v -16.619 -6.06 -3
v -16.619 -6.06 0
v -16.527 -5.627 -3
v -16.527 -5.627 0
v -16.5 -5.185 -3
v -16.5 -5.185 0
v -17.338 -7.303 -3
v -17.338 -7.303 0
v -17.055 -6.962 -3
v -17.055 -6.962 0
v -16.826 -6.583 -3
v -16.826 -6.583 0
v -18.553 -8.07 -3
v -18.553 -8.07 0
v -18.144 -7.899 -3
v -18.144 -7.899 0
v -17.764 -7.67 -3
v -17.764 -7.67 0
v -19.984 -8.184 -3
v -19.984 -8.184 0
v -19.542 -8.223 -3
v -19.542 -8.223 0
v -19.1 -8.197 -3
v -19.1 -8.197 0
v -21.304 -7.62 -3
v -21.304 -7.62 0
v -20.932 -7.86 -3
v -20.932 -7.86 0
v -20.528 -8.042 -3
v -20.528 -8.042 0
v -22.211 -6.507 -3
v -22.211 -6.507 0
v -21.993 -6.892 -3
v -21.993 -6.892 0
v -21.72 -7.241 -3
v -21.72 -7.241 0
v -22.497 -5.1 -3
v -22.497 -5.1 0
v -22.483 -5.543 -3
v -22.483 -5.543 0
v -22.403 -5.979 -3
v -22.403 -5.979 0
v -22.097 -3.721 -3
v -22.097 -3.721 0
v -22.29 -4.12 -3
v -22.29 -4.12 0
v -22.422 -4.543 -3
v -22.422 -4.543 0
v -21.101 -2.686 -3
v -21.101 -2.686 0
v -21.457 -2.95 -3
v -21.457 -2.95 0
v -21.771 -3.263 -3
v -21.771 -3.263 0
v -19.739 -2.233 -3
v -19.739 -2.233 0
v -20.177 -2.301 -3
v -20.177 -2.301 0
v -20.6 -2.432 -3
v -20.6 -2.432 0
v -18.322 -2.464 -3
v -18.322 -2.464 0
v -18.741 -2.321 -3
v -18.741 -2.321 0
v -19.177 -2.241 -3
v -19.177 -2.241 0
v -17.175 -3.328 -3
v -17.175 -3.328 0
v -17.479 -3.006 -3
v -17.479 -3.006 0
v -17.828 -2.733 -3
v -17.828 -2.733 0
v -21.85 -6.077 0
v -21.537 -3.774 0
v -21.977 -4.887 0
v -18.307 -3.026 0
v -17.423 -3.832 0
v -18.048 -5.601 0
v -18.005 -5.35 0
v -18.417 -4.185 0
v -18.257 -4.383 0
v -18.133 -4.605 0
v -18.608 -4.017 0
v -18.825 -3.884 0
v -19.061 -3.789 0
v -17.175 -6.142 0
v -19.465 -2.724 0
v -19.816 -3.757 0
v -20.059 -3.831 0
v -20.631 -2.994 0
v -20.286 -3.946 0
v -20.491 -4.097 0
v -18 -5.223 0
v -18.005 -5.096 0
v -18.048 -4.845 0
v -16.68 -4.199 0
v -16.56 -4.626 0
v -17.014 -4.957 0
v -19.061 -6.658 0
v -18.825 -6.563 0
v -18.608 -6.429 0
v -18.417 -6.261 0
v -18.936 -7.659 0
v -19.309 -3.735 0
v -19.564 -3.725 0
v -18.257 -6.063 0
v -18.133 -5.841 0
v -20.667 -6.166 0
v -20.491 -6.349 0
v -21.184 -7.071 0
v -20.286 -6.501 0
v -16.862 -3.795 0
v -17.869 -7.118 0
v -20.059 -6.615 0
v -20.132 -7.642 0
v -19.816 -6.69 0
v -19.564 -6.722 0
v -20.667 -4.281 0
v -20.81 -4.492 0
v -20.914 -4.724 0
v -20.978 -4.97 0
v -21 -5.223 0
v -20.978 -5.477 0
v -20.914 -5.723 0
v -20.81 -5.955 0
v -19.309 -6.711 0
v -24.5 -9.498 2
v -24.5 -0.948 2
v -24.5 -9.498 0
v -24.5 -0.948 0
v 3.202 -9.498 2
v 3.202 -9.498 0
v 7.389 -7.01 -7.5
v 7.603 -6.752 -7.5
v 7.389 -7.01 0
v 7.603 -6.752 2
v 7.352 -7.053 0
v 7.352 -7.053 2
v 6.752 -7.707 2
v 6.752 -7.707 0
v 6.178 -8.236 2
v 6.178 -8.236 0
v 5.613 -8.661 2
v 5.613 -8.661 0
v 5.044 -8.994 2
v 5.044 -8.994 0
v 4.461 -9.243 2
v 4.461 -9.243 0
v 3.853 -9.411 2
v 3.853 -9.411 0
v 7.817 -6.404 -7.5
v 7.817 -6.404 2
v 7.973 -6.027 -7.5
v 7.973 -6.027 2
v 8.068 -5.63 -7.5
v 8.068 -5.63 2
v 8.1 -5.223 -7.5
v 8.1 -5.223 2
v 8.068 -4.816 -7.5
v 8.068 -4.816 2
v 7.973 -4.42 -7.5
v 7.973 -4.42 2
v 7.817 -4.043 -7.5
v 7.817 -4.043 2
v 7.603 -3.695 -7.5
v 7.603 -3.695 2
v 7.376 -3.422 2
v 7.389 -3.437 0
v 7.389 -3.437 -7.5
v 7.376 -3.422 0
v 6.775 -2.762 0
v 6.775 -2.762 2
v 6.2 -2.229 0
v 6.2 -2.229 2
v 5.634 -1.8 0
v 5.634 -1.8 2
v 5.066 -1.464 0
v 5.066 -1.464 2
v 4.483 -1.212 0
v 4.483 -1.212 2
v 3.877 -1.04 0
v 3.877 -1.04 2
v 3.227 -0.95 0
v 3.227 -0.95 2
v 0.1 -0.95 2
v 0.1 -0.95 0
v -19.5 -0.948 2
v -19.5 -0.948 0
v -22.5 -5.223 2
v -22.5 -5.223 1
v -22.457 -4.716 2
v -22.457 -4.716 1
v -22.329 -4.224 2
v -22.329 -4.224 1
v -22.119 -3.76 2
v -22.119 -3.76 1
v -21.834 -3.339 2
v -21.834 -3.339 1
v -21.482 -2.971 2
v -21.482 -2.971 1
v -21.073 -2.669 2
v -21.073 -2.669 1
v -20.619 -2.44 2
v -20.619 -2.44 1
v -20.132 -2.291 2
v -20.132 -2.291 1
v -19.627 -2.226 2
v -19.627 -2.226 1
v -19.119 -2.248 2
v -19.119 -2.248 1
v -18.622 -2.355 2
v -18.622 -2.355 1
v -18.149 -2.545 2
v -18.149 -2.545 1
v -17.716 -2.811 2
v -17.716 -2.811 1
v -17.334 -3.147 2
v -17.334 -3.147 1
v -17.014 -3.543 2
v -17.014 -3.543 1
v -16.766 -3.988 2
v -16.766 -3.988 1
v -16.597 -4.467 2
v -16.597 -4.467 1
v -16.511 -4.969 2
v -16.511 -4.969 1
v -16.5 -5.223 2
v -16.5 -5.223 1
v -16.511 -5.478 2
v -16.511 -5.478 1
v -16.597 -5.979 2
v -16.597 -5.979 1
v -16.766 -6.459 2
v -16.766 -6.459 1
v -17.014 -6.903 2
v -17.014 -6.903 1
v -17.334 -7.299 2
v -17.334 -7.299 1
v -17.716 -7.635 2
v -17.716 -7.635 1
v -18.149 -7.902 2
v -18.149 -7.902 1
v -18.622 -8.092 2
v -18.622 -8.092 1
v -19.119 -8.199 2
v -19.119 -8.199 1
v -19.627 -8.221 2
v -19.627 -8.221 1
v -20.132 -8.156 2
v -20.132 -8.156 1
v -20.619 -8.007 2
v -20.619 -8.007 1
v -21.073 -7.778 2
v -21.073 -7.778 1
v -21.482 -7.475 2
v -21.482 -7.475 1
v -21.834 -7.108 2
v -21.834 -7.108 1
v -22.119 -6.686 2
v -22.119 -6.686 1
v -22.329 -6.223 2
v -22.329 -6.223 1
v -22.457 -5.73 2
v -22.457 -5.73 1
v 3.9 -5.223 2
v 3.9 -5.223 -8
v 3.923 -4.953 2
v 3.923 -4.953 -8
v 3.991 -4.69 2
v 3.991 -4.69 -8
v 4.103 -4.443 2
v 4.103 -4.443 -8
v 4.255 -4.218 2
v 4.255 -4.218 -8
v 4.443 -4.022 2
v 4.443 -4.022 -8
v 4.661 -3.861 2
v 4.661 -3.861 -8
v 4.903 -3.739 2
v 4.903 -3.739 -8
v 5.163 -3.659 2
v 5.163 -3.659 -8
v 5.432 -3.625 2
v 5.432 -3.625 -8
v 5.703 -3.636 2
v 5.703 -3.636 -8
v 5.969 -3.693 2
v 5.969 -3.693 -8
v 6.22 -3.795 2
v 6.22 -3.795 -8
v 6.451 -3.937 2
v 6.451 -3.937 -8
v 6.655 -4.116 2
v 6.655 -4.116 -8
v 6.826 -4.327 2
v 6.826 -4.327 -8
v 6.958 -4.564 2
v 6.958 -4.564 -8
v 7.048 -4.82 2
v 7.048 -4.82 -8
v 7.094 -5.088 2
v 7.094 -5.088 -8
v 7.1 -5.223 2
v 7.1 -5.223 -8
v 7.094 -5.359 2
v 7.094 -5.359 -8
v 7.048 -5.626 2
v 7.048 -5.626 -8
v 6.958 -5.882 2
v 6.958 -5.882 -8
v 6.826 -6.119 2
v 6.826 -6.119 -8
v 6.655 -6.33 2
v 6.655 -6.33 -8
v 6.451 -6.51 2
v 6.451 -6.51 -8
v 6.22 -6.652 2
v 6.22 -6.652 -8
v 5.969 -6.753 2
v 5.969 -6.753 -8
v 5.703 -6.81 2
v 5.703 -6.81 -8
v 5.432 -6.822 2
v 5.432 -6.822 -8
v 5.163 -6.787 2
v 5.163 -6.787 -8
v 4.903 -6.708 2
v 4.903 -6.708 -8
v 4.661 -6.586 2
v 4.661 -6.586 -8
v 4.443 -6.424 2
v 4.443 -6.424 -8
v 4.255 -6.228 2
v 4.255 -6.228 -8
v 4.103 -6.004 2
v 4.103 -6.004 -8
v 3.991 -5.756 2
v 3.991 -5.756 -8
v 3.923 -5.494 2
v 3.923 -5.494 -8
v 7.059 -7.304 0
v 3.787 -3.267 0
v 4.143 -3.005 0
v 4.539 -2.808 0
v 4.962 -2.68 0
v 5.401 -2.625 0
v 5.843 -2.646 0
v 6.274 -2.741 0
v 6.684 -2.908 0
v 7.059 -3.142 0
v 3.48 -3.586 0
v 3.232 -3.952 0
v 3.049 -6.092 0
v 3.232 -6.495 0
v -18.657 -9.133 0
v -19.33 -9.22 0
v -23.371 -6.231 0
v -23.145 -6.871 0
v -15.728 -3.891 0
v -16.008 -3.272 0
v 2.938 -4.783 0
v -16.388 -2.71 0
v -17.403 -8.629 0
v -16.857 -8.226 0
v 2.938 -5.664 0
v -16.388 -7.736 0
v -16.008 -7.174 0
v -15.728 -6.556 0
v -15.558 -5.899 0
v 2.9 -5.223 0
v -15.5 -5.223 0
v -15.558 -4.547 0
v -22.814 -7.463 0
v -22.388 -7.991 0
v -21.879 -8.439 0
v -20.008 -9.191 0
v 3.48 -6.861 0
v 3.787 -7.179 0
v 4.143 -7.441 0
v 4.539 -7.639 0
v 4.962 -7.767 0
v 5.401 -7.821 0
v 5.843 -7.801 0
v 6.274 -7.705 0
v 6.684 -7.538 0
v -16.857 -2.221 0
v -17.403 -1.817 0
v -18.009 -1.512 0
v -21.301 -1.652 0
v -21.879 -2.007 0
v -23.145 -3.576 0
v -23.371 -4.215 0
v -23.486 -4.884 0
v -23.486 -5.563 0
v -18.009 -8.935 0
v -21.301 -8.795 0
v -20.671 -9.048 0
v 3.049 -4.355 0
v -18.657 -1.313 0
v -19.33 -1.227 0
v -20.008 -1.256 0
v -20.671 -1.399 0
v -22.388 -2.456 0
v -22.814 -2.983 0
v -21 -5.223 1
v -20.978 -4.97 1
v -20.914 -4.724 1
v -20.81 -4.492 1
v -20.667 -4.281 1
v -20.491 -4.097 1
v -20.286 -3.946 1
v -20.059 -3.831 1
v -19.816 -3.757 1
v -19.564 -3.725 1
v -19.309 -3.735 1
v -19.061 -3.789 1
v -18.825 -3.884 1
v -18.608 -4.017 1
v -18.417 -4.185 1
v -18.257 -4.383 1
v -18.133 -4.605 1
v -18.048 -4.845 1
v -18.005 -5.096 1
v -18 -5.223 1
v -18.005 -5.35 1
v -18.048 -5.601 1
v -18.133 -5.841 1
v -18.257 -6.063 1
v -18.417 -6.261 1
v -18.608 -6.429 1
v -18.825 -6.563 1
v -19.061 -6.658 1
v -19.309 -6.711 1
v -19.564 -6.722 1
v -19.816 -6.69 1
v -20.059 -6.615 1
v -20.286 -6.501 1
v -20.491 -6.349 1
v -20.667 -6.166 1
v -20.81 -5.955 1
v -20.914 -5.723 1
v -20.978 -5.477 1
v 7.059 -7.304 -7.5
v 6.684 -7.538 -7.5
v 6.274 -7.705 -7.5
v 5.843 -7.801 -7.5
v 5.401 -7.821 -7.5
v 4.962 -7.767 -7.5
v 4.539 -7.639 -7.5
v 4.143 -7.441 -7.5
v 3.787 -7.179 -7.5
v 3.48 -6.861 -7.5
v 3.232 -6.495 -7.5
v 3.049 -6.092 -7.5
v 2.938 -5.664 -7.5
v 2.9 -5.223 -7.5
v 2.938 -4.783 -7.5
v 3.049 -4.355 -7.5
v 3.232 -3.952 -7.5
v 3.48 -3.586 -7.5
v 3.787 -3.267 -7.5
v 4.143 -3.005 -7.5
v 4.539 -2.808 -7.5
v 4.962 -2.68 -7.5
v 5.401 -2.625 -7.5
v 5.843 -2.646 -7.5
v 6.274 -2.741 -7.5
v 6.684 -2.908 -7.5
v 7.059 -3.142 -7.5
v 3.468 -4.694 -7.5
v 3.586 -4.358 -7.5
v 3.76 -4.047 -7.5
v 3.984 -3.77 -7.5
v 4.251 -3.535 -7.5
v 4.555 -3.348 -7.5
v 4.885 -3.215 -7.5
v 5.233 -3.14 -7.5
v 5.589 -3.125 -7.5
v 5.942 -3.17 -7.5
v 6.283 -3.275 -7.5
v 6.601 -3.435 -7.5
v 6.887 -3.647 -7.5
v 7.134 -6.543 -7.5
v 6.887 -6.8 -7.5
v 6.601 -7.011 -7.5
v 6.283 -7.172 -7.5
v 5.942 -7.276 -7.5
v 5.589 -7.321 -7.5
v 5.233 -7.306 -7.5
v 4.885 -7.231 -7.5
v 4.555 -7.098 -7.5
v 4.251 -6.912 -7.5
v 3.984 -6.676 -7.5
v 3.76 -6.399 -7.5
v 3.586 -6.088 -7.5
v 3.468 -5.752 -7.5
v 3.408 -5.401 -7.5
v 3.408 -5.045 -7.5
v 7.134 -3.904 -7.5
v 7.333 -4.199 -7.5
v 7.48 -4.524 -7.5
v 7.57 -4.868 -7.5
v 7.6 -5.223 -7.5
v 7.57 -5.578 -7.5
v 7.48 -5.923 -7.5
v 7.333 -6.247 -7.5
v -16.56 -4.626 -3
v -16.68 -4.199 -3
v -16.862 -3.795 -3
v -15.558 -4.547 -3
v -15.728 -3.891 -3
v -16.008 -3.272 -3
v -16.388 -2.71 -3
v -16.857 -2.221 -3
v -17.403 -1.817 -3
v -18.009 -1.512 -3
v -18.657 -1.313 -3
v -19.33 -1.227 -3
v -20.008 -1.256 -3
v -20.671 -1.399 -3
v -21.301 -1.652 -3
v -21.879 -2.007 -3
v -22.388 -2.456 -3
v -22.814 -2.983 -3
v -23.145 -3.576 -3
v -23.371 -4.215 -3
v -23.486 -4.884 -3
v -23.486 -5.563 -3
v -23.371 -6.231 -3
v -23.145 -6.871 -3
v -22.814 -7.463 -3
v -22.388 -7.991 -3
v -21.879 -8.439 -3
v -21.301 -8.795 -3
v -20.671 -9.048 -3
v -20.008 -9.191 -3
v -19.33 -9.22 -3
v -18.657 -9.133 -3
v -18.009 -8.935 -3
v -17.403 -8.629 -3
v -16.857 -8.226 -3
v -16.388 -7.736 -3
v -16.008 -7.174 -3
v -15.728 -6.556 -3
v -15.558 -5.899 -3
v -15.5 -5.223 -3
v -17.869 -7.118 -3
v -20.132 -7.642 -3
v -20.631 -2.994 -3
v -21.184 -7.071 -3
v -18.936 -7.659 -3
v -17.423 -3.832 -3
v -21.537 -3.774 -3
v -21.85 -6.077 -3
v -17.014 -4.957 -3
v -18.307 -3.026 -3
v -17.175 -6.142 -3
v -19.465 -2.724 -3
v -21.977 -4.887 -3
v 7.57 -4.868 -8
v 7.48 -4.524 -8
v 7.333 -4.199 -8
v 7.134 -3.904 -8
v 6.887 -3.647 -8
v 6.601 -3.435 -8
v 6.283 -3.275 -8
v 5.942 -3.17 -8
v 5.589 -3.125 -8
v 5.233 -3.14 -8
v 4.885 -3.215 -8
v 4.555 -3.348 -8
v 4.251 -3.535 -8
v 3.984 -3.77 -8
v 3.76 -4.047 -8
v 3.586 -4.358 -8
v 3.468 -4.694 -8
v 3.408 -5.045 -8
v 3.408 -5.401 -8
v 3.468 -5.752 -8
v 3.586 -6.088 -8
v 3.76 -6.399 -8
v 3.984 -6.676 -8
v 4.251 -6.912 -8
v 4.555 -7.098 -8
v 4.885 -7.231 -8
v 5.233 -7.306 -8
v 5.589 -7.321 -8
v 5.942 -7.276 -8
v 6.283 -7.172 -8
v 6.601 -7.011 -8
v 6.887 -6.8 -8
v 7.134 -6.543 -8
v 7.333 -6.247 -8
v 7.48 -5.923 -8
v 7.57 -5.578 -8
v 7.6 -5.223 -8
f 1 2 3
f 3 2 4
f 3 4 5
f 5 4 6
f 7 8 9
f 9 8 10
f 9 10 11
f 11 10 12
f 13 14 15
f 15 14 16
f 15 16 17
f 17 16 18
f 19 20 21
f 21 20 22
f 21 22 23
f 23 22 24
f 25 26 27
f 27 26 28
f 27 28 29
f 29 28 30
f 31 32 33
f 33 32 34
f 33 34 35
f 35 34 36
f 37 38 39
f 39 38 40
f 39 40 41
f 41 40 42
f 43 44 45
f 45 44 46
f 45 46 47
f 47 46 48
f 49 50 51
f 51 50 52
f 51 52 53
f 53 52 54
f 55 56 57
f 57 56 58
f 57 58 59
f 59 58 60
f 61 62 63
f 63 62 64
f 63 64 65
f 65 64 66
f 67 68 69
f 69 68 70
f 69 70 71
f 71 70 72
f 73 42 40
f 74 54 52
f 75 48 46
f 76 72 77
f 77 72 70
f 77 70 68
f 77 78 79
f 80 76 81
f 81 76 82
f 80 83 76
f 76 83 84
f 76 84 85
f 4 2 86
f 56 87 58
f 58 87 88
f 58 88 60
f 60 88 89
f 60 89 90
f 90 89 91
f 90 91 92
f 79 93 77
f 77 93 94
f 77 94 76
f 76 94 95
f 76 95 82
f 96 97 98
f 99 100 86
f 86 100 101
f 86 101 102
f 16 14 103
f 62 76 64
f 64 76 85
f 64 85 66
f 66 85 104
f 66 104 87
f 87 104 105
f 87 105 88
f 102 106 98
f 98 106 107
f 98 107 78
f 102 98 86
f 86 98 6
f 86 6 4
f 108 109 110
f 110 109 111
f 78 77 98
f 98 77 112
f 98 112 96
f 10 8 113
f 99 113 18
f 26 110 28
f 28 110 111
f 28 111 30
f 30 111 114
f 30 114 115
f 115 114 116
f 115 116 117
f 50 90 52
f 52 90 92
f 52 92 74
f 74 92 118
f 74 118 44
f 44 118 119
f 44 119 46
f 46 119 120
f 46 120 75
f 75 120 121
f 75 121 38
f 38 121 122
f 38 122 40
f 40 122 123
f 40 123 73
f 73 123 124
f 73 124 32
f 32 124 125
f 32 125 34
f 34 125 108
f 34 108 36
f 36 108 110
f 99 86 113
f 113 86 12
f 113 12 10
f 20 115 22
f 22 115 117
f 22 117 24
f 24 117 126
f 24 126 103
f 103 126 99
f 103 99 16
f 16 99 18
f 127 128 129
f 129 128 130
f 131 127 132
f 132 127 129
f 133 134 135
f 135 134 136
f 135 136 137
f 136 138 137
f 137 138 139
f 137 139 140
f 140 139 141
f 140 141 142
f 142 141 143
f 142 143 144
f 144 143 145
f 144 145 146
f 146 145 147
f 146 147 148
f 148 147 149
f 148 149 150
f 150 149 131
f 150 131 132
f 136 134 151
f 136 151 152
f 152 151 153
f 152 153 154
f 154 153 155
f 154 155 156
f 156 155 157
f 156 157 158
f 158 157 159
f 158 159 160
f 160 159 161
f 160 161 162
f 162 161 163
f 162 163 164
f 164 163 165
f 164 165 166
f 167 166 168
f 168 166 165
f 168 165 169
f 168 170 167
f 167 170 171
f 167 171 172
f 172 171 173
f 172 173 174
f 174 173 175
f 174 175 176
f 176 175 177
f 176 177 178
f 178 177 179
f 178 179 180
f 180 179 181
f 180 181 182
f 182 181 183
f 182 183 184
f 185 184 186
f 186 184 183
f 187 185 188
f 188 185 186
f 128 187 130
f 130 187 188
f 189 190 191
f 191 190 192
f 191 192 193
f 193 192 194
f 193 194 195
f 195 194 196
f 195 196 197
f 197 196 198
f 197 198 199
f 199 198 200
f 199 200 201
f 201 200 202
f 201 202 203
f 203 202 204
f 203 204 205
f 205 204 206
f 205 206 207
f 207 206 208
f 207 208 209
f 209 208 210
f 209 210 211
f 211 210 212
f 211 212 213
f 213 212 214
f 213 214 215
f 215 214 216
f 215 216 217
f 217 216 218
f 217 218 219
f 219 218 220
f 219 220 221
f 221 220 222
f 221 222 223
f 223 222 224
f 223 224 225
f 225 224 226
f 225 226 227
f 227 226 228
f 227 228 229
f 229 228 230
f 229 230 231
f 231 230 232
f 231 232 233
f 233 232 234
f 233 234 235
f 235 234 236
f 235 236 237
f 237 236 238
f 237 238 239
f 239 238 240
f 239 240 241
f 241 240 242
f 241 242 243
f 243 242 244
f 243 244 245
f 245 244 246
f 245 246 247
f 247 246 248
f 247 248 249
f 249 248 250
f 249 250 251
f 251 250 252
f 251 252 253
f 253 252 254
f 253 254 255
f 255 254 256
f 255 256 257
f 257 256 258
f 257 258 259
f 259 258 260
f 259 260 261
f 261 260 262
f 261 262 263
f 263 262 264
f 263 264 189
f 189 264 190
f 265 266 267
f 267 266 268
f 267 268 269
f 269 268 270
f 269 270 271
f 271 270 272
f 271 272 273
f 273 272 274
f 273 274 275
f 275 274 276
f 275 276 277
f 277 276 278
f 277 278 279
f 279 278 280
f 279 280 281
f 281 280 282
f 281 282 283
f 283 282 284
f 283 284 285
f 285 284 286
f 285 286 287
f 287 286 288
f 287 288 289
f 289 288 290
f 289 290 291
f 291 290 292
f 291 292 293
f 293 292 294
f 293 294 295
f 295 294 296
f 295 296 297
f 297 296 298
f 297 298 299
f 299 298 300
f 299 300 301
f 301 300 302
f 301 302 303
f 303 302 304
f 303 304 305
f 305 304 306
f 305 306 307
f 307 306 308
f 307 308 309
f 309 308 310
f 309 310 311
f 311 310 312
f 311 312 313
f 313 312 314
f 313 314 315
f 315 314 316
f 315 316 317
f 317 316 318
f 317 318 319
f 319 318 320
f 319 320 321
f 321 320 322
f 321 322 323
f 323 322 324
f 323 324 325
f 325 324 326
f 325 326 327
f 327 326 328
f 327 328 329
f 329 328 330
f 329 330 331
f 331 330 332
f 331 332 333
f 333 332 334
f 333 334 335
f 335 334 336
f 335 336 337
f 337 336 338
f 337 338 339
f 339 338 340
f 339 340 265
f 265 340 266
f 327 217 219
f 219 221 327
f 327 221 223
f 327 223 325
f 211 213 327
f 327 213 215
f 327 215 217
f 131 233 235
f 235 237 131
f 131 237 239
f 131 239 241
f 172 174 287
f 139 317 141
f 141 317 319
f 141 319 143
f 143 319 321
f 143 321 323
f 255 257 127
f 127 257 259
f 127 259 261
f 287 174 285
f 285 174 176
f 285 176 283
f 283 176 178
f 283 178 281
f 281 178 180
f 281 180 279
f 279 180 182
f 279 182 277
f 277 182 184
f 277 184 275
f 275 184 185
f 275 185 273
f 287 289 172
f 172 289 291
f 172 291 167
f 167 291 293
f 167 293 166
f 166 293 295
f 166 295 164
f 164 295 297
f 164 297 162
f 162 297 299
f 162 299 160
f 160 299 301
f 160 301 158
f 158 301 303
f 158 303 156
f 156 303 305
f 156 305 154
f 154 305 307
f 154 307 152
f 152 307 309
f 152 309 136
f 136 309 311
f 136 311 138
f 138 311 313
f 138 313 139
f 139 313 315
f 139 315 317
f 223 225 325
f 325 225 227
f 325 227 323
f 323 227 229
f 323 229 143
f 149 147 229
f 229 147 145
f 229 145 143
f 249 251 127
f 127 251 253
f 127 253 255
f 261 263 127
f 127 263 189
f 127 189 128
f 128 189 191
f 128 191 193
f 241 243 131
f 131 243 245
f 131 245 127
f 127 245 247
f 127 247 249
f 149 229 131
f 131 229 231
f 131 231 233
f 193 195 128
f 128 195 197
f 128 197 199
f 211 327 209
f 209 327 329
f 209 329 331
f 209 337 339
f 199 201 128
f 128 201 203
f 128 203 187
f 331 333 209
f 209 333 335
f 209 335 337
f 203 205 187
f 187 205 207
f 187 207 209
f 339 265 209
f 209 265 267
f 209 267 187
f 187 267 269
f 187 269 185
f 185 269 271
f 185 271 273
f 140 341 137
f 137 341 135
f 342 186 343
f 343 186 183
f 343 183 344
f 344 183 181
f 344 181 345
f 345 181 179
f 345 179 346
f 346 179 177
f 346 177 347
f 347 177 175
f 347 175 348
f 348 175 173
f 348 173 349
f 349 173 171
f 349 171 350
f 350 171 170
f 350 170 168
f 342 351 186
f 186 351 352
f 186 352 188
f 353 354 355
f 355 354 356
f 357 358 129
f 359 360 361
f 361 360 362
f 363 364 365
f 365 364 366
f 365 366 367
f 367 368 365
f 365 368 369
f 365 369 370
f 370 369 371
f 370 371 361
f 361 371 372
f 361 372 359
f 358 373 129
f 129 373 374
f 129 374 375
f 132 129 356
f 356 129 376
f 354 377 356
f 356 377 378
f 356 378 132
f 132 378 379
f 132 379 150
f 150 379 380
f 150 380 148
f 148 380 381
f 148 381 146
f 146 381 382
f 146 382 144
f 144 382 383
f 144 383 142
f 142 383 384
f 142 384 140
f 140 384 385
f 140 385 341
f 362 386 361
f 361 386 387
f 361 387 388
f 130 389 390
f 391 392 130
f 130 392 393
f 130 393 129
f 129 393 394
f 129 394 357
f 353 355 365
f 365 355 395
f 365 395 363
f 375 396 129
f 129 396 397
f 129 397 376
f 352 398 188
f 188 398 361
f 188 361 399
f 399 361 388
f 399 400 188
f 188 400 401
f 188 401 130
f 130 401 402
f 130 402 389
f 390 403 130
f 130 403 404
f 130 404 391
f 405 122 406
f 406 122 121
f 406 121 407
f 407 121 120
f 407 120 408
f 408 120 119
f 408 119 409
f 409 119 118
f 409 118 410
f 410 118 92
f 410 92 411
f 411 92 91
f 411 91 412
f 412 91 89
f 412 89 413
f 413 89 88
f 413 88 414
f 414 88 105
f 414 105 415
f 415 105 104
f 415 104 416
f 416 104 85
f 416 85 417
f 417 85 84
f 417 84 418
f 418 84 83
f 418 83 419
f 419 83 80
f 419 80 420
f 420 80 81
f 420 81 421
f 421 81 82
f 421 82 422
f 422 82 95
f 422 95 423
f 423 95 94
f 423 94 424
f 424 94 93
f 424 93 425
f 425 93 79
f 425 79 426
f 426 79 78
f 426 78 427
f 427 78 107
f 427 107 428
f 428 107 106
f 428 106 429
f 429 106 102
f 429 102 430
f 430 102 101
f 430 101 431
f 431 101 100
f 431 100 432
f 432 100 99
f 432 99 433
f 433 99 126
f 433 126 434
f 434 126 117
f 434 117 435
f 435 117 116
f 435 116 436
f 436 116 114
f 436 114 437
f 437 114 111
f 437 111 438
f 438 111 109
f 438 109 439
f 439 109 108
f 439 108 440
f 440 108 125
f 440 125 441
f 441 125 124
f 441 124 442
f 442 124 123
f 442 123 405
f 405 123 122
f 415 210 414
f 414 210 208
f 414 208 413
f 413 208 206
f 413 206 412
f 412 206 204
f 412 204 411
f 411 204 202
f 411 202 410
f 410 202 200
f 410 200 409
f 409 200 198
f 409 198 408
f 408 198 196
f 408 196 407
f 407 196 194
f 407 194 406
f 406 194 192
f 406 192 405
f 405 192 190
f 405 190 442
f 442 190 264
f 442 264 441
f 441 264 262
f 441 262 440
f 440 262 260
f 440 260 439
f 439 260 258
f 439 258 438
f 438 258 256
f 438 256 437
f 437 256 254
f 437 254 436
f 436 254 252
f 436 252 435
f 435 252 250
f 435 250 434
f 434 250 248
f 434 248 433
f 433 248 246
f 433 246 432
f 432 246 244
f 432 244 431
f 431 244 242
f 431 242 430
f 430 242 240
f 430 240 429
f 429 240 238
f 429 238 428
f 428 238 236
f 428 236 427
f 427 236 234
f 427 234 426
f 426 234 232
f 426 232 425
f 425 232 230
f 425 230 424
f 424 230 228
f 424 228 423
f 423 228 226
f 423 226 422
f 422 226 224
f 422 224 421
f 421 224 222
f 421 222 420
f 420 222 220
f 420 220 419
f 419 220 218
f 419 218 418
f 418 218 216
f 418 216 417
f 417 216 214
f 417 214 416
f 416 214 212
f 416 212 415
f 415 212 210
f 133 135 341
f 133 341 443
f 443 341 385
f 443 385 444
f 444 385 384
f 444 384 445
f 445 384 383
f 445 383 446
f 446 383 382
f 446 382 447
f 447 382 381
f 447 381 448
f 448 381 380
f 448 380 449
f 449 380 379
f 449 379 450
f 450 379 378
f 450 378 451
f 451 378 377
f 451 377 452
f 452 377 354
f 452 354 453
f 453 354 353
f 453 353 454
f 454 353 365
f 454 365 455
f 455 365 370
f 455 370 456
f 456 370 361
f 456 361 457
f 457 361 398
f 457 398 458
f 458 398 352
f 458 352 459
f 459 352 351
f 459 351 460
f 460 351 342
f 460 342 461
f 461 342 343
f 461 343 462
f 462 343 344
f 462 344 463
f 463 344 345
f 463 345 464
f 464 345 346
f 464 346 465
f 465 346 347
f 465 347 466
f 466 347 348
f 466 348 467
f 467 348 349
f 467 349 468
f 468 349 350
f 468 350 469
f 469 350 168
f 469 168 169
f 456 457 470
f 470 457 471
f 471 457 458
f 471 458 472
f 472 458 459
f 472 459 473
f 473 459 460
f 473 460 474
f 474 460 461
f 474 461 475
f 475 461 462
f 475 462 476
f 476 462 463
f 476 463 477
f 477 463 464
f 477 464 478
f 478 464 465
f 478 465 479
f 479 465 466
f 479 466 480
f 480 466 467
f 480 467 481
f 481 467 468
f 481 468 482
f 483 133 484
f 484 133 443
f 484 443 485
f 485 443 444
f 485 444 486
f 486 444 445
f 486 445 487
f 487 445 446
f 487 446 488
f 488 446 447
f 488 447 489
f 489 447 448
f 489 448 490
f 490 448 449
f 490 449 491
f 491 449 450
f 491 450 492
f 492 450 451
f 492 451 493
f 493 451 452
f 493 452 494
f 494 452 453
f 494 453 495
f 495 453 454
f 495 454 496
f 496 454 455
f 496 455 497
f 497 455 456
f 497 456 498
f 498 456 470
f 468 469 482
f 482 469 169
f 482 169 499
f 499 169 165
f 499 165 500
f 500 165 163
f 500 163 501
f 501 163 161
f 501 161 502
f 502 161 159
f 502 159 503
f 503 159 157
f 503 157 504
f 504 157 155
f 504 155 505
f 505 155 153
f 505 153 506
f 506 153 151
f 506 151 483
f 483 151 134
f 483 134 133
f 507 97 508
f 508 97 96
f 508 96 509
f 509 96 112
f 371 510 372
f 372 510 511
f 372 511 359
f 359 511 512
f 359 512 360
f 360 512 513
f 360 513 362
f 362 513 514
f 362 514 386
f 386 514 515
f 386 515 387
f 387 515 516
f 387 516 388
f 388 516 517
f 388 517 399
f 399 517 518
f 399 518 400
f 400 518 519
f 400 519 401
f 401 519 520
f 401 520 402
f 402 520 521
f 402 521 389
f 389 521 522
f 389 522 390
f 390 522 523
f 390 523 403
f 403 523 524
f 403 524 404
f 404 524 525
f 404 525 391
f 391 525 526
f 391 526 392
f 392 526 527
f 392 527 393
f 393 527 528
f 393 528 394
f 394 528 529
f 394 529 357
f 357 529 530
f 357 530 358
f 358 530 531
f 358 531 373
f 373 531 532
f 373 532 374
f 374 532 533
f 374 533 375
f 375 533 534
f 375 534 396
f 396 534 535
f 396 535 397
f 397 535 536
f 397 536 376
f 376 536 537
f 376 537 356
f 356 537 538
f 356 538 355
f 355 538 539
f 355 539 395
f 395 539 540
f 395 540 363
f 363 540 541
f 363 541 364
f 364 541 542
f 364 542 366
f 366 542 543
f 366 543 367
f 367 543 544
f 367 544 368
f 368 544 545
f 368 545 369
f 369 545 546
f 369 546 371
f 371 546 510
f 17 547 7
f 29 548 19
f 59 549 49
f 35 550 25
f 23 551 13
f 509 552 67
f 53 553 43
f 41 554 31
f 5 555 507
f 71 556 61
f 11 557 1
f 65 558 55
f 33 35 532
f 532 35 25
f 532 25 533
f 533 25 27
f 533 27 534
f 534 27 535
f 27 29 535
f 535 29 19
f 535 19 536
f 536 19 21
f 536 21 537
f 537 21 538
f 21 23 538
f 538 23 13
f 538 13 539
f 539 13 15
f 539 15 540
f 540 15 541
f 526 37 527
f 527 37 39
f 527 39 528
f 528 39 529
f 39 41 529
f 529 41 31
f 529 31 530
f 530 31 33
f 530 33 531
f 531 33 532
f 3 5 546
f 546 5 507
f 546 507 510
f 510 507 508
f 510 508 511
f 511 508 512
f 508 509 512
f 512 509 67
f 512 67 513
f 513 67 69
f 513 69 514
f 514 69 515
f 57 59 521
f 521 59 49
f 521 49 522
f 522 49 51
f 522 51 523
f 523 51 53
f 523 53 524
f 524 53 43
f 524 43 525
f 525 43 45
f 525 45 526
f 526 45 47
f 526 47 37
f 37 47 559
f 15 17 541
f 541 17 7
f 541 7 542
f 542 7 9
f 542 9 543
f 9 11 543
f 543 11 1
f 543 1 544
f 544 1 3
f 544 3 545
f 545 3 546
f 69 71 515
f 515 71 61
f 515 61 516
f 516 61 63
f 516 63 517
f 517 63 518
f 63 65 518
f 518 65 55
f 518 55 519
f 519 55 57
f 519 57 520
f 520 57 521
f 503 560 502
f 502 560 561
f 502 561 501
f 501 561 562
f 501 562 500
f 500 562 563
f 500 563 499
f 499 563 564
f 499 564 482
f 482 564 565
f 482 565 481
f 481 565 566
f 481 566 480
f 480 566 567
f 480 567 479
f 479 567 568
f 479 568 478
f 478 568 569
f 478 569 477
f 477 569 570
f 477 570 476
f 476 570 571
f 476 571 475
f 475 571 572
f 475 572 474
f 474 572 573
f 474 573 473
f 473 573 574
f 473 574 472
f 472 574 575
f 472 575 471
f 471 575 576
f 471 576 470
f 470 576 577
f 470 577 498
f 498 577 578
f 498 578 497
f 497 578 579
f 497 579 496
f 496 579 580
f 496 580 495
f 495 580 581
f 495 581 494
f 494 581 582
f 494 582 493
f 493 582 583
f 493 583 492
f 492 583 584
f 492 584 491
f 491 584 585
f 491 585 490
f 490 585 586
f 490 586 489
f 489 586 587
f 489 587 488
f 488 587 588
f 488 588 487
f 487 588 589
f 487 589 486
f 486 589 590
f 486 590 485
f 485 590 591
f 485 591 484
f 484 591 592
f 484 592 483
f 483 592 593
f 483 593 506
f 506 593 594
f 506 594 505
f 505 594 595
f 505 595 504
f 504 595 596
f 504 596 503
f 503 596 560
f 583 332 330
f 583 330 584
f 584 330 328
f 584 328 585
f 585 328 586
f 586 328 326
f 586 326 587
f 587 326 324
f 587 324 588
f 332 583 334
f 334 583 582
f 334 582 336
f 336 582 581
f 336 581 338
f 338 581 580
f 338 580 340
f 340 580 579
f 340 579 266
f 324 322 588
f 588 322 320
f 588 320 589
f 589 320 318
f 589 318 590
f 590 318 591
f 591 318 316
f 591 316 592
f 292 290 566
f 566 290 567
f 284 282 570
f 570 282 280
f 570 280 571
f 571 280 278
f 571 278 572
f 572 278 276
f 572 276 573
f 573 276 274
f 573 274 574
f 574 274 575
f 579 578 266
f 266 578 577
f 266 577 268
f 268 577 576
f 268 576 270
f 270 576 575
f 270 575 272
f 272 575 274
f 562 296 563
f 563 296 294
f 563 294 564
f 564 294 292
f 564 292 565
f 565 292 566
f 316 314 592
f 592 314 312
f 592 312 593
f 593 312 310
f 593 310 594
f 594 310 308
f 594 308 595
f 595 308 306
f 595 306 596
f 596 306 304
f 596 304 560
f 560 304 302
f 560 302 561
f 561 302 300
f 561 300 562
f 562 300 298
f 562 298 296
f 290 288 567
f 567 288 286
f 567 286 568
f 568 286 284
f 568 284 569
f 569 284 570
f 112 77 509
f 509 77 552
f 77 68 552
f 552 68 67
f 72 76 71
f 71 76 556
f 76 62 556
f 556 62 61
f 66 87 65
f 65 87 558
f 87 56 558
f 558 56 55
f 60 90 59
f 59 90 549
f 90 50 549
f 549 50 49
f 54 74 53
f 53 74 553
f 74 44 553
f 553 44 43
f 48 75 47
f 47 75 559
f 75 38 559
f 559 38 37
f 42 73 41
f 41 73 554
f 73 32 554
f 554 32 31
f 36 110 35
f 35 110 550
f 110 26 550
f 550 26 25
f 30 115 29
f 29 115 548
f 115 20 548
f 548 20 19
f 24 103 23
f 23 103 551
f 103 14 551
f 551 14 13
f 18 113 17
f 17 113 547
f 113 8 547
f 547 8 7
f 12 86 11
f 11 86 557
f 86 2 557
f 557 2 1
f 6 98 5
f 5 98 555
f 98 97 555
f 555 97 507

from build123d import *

# Parameters (mm, degrees)
ESBO_O1_R                 = 3
ESBO_O1_R_2               = 1.6
RESSALTO_EXTRUS_O1_DEPTH  = 2
ESBO_O1_4_R               = 3
ESBO_O1_4_R_2             = 1.5
RESSALTO_EXTRUS_O2_DEPTH  = 1
RESSALTO_EXTRUS_O3_START  = -7.5
ESBO_O1_5_R               = 1.6
RESSALTO_EXTRUS_O3_DEPTH  = 7.5
RESSALTO_EXTRUS_O18_START = -3
RESSALTO_EXTRUS_O18_DEPTH = 3
RESSALTO_EXTRUS_O21_START = -8
ESBO_O1_12_R              = 2.1
ESBO_O1_12_R_2            = 1.6
RESSALTO_EXTRUS_O21_DEPTH = 8
RESSALTO_EXTRUS_O22_DEPTH = 3
PADR_OCIRCULAR4_COUNT     = 13


with BuildPart() as part:
    # Esboço1 → Ressalto-extrusão1 (new body)
    with BuildSketch(Plane.XY):
        with BuildLine():
            add(Edge.make_bspline(
                [(3.201918926, -9.498277946), (5.089880376, -9.374786464), (6.418020478, -8.208302927), (7.603254861, -6.751780151)],
                knots=[0.106795249, 0.106795249, 0.106795249, 0.106795249, 1, 1, 1, 1], degree=3))
            ThreePointArc((7.603254861, -6.751780151), (8.1, -5.223277946), (7.603254861, -3.694775741))
            add(Edge.make_bspline(
                [(7.603254861, -3.694775741), (6.423329127, -2.244776711), (5.101774953, -1.082224575), (3.227253733, -0.95)],
                knots=[0.946595223, 0.946595223, 0.946595223, 0.946595223, 1.835799322, 1.835799322, 1.835799322, 1.835799322], degree=3))
            Line((3.227253733, -0.95), (0.099999924, -0.95))
            Line((0.099999924, -0.95), (-19.5, -0.948277946))
            Line((-19.5, -0.948277946), (-24.5, -0.948277946))
            Line((-24.5, -0.948277946), (-24.5, -9.498277946))
            Line((-24.5, -9.498277946), (3.201918926, -9.498277946))
        make_face()
        with Locations((-19.5, -5.223277946)):
            Circle(ESBO_O1_R, mode=Mode.SUBTRACT)
        with Locations((5.5, -5.223277946)):
            Circle(ESBO_O1_R_2, mode=Mode.SUBTRACT)
    extrude(amount=RESSALTO_EXTRUS_O1_DEPTH)

    # Esboço1<4> → Ressalto-extrusão2 (add)
    with BuildSketch(Plane.XY):
        with Locations((-19.5, -5.223277946)):
            Circle(ESBO_O1_4_R)
        with Locations((-19.5, -5.223277946)):
            Circle(ESBO_O1_4_R_2, mode=Mode.SUBTRACT)
    extrude(amount=RESSALTO_EXTRUS_O2_DEPTH)

    # Esboço1<5> → Ressalto-extrusão3 (add)
    with BuildSketch(Plane.XY.offset(RESSALTO_EXTRUS_O3_START)):
        with BuildLine():
            ThreePointArc((7.389037399, -3.436790413), (2.9, -5.223277946), (7.389037399, -7.009765479))
            add(Edge.make_bspline(
                [(7.389037399, -7.009765479), (7.461013495, -6.924914508), (7.532389611, -6.838865753), (7.603254861, -6.751780151)],
                knots=[0.946595223, 0.946595223, 0.946595223, 0.946595223, 1, 1, 1, 1], degree=3))
            ThreePointArc((7.603254861, -6.751780151), (8.1, -5.223277946), (7.603254861, -3.694775741))
            add(Edge.make_bspline(
                [(7.389037399, -3.436790413), (7.461013495, -3.521641384), (7.532389611, -3.607690139), (7.603254861, -3.694775741)],
                knots=[0.946595223, 0.946595223, 0.946595223, 0.946595223, 1, 1, 1, 1], degree=3))
        make_face()
        with Locations((5.5, -5.223277946)):
            Circle(ESBO_O1_5_R, mode=Mode.SUBTRACT)
    extrude(amount=RESSALTO_EXTRUS_O3_DEPTH)

    # Esboço1<10> → Ressalto-extrusão18 (add)
    with BuildSketch(Plane.XY.offset(RESSALTO_EXTRUS_O18_START)):
        with BuildLine():
            ThreePointArc((-19.5, -1.223277946), (-23.5, -5.223277946), (-19.5, -9.223277946))
            Line((-19.5, -9.223277946), (-19.5, -8.223277946))
            ThreePointArc((-19.5, -8.223277946), (-22.5, -5.223277946), (-19.5, -2.223277946))
            Line((-19.5, -2.223277946), (-19.5, -1.223277946))
        make_face()
        with BuildLine():
            Line((-19.5, -8.223277946), (-19.5, -9.223277946))
            ThreePointArc((-19.5, -9.223277946), (-16.671572875, -8.051705071), (-15.5, -5.223277946))
            ThreePointArc((-15.5, -5.223277946), (-16.671572875, -2.394850821), (-19.5, -1.223277946))
            Line((-19.5, -1.223277946), (-19.5, -2.223277946))
            ThreePointArc((-19.5, -2.223277946), (-17.378679656, -3.101957603), (-16.5, -5.223277946))
            ThreePointArc((-16.5, -5.223277946), (-17.378679656, -7.34459829), (-19.5, -8.223277946))
        make_face()
    extrude(amount=RESSALTO_EXTRUS_O18_DEPTH)

    # Esboço1<12> → Ressalto-extrusão21 (add)
    with BuildSketch(Plane.XY.offset(RESSALTO_EXTRUS_O21_START)):
        with Locations((5.5, -5.223277946)):
            Circle(ESBO_O1_12_R)
        with Locations((5.5, -5.223277946)):
            Circle(ESBO_O1_12_R_2, mode=Mode.SUBTRACT)
    extrude(amount=RESSALTO_EXTRUS_O21_DEPTH)

    # Esboço4 → Ressalto-extrusão22 (add)
    with BuildSketch(Plane(origin=(0, 0, -3), x_dir=(-1, 0, 0), z_dir=(0, 0, -1))):
        with BuildLine():
            Line((16.861766136, -3.795089556), (17.42229309, -3.832074862))
            Line((17.42229309, -3.832074862), (17.007212736, -3.554142944))
            ThreePointArc((17.007212736, -3.554142944), (16.931662352, -3.67290969), (16.861766136, -3.795089556))
        make_face()
        with BuildLine():
            Line((17.007212736, -3.554142944), (17.42229309, -3.832074862))
            Line((17.42229309, -3.832074862), (17.422825904, -3.832110019))
            Line((17.422825904, -3.832110019), (17.174502722, -3.328004244))
            ThreePointArc((17.174502722, -3.328004244), (17.088205821, -3.439111799), (17.007212736, -3.554142944))
        make_face()
    ressalto_extrus_o22 = extrude(amount=-RESSALTO_EXTRUS_O22_DEPTH)

    # PadrãoCircular4: Ressalto-extrusão22 ×13 about axis
    padr_ocircular4_axis = Axis((-19.5, -5.223277946, 0), (0, 0, 1))
    for i in range(1, PADR_OCIRCULAR4_COUNT):
        add(ressalto_extrus_o22.rotate(padr_ocircular4_axis, i * 360 / PADR_OCIRCULAR4_COUNT))


solid = part.part
